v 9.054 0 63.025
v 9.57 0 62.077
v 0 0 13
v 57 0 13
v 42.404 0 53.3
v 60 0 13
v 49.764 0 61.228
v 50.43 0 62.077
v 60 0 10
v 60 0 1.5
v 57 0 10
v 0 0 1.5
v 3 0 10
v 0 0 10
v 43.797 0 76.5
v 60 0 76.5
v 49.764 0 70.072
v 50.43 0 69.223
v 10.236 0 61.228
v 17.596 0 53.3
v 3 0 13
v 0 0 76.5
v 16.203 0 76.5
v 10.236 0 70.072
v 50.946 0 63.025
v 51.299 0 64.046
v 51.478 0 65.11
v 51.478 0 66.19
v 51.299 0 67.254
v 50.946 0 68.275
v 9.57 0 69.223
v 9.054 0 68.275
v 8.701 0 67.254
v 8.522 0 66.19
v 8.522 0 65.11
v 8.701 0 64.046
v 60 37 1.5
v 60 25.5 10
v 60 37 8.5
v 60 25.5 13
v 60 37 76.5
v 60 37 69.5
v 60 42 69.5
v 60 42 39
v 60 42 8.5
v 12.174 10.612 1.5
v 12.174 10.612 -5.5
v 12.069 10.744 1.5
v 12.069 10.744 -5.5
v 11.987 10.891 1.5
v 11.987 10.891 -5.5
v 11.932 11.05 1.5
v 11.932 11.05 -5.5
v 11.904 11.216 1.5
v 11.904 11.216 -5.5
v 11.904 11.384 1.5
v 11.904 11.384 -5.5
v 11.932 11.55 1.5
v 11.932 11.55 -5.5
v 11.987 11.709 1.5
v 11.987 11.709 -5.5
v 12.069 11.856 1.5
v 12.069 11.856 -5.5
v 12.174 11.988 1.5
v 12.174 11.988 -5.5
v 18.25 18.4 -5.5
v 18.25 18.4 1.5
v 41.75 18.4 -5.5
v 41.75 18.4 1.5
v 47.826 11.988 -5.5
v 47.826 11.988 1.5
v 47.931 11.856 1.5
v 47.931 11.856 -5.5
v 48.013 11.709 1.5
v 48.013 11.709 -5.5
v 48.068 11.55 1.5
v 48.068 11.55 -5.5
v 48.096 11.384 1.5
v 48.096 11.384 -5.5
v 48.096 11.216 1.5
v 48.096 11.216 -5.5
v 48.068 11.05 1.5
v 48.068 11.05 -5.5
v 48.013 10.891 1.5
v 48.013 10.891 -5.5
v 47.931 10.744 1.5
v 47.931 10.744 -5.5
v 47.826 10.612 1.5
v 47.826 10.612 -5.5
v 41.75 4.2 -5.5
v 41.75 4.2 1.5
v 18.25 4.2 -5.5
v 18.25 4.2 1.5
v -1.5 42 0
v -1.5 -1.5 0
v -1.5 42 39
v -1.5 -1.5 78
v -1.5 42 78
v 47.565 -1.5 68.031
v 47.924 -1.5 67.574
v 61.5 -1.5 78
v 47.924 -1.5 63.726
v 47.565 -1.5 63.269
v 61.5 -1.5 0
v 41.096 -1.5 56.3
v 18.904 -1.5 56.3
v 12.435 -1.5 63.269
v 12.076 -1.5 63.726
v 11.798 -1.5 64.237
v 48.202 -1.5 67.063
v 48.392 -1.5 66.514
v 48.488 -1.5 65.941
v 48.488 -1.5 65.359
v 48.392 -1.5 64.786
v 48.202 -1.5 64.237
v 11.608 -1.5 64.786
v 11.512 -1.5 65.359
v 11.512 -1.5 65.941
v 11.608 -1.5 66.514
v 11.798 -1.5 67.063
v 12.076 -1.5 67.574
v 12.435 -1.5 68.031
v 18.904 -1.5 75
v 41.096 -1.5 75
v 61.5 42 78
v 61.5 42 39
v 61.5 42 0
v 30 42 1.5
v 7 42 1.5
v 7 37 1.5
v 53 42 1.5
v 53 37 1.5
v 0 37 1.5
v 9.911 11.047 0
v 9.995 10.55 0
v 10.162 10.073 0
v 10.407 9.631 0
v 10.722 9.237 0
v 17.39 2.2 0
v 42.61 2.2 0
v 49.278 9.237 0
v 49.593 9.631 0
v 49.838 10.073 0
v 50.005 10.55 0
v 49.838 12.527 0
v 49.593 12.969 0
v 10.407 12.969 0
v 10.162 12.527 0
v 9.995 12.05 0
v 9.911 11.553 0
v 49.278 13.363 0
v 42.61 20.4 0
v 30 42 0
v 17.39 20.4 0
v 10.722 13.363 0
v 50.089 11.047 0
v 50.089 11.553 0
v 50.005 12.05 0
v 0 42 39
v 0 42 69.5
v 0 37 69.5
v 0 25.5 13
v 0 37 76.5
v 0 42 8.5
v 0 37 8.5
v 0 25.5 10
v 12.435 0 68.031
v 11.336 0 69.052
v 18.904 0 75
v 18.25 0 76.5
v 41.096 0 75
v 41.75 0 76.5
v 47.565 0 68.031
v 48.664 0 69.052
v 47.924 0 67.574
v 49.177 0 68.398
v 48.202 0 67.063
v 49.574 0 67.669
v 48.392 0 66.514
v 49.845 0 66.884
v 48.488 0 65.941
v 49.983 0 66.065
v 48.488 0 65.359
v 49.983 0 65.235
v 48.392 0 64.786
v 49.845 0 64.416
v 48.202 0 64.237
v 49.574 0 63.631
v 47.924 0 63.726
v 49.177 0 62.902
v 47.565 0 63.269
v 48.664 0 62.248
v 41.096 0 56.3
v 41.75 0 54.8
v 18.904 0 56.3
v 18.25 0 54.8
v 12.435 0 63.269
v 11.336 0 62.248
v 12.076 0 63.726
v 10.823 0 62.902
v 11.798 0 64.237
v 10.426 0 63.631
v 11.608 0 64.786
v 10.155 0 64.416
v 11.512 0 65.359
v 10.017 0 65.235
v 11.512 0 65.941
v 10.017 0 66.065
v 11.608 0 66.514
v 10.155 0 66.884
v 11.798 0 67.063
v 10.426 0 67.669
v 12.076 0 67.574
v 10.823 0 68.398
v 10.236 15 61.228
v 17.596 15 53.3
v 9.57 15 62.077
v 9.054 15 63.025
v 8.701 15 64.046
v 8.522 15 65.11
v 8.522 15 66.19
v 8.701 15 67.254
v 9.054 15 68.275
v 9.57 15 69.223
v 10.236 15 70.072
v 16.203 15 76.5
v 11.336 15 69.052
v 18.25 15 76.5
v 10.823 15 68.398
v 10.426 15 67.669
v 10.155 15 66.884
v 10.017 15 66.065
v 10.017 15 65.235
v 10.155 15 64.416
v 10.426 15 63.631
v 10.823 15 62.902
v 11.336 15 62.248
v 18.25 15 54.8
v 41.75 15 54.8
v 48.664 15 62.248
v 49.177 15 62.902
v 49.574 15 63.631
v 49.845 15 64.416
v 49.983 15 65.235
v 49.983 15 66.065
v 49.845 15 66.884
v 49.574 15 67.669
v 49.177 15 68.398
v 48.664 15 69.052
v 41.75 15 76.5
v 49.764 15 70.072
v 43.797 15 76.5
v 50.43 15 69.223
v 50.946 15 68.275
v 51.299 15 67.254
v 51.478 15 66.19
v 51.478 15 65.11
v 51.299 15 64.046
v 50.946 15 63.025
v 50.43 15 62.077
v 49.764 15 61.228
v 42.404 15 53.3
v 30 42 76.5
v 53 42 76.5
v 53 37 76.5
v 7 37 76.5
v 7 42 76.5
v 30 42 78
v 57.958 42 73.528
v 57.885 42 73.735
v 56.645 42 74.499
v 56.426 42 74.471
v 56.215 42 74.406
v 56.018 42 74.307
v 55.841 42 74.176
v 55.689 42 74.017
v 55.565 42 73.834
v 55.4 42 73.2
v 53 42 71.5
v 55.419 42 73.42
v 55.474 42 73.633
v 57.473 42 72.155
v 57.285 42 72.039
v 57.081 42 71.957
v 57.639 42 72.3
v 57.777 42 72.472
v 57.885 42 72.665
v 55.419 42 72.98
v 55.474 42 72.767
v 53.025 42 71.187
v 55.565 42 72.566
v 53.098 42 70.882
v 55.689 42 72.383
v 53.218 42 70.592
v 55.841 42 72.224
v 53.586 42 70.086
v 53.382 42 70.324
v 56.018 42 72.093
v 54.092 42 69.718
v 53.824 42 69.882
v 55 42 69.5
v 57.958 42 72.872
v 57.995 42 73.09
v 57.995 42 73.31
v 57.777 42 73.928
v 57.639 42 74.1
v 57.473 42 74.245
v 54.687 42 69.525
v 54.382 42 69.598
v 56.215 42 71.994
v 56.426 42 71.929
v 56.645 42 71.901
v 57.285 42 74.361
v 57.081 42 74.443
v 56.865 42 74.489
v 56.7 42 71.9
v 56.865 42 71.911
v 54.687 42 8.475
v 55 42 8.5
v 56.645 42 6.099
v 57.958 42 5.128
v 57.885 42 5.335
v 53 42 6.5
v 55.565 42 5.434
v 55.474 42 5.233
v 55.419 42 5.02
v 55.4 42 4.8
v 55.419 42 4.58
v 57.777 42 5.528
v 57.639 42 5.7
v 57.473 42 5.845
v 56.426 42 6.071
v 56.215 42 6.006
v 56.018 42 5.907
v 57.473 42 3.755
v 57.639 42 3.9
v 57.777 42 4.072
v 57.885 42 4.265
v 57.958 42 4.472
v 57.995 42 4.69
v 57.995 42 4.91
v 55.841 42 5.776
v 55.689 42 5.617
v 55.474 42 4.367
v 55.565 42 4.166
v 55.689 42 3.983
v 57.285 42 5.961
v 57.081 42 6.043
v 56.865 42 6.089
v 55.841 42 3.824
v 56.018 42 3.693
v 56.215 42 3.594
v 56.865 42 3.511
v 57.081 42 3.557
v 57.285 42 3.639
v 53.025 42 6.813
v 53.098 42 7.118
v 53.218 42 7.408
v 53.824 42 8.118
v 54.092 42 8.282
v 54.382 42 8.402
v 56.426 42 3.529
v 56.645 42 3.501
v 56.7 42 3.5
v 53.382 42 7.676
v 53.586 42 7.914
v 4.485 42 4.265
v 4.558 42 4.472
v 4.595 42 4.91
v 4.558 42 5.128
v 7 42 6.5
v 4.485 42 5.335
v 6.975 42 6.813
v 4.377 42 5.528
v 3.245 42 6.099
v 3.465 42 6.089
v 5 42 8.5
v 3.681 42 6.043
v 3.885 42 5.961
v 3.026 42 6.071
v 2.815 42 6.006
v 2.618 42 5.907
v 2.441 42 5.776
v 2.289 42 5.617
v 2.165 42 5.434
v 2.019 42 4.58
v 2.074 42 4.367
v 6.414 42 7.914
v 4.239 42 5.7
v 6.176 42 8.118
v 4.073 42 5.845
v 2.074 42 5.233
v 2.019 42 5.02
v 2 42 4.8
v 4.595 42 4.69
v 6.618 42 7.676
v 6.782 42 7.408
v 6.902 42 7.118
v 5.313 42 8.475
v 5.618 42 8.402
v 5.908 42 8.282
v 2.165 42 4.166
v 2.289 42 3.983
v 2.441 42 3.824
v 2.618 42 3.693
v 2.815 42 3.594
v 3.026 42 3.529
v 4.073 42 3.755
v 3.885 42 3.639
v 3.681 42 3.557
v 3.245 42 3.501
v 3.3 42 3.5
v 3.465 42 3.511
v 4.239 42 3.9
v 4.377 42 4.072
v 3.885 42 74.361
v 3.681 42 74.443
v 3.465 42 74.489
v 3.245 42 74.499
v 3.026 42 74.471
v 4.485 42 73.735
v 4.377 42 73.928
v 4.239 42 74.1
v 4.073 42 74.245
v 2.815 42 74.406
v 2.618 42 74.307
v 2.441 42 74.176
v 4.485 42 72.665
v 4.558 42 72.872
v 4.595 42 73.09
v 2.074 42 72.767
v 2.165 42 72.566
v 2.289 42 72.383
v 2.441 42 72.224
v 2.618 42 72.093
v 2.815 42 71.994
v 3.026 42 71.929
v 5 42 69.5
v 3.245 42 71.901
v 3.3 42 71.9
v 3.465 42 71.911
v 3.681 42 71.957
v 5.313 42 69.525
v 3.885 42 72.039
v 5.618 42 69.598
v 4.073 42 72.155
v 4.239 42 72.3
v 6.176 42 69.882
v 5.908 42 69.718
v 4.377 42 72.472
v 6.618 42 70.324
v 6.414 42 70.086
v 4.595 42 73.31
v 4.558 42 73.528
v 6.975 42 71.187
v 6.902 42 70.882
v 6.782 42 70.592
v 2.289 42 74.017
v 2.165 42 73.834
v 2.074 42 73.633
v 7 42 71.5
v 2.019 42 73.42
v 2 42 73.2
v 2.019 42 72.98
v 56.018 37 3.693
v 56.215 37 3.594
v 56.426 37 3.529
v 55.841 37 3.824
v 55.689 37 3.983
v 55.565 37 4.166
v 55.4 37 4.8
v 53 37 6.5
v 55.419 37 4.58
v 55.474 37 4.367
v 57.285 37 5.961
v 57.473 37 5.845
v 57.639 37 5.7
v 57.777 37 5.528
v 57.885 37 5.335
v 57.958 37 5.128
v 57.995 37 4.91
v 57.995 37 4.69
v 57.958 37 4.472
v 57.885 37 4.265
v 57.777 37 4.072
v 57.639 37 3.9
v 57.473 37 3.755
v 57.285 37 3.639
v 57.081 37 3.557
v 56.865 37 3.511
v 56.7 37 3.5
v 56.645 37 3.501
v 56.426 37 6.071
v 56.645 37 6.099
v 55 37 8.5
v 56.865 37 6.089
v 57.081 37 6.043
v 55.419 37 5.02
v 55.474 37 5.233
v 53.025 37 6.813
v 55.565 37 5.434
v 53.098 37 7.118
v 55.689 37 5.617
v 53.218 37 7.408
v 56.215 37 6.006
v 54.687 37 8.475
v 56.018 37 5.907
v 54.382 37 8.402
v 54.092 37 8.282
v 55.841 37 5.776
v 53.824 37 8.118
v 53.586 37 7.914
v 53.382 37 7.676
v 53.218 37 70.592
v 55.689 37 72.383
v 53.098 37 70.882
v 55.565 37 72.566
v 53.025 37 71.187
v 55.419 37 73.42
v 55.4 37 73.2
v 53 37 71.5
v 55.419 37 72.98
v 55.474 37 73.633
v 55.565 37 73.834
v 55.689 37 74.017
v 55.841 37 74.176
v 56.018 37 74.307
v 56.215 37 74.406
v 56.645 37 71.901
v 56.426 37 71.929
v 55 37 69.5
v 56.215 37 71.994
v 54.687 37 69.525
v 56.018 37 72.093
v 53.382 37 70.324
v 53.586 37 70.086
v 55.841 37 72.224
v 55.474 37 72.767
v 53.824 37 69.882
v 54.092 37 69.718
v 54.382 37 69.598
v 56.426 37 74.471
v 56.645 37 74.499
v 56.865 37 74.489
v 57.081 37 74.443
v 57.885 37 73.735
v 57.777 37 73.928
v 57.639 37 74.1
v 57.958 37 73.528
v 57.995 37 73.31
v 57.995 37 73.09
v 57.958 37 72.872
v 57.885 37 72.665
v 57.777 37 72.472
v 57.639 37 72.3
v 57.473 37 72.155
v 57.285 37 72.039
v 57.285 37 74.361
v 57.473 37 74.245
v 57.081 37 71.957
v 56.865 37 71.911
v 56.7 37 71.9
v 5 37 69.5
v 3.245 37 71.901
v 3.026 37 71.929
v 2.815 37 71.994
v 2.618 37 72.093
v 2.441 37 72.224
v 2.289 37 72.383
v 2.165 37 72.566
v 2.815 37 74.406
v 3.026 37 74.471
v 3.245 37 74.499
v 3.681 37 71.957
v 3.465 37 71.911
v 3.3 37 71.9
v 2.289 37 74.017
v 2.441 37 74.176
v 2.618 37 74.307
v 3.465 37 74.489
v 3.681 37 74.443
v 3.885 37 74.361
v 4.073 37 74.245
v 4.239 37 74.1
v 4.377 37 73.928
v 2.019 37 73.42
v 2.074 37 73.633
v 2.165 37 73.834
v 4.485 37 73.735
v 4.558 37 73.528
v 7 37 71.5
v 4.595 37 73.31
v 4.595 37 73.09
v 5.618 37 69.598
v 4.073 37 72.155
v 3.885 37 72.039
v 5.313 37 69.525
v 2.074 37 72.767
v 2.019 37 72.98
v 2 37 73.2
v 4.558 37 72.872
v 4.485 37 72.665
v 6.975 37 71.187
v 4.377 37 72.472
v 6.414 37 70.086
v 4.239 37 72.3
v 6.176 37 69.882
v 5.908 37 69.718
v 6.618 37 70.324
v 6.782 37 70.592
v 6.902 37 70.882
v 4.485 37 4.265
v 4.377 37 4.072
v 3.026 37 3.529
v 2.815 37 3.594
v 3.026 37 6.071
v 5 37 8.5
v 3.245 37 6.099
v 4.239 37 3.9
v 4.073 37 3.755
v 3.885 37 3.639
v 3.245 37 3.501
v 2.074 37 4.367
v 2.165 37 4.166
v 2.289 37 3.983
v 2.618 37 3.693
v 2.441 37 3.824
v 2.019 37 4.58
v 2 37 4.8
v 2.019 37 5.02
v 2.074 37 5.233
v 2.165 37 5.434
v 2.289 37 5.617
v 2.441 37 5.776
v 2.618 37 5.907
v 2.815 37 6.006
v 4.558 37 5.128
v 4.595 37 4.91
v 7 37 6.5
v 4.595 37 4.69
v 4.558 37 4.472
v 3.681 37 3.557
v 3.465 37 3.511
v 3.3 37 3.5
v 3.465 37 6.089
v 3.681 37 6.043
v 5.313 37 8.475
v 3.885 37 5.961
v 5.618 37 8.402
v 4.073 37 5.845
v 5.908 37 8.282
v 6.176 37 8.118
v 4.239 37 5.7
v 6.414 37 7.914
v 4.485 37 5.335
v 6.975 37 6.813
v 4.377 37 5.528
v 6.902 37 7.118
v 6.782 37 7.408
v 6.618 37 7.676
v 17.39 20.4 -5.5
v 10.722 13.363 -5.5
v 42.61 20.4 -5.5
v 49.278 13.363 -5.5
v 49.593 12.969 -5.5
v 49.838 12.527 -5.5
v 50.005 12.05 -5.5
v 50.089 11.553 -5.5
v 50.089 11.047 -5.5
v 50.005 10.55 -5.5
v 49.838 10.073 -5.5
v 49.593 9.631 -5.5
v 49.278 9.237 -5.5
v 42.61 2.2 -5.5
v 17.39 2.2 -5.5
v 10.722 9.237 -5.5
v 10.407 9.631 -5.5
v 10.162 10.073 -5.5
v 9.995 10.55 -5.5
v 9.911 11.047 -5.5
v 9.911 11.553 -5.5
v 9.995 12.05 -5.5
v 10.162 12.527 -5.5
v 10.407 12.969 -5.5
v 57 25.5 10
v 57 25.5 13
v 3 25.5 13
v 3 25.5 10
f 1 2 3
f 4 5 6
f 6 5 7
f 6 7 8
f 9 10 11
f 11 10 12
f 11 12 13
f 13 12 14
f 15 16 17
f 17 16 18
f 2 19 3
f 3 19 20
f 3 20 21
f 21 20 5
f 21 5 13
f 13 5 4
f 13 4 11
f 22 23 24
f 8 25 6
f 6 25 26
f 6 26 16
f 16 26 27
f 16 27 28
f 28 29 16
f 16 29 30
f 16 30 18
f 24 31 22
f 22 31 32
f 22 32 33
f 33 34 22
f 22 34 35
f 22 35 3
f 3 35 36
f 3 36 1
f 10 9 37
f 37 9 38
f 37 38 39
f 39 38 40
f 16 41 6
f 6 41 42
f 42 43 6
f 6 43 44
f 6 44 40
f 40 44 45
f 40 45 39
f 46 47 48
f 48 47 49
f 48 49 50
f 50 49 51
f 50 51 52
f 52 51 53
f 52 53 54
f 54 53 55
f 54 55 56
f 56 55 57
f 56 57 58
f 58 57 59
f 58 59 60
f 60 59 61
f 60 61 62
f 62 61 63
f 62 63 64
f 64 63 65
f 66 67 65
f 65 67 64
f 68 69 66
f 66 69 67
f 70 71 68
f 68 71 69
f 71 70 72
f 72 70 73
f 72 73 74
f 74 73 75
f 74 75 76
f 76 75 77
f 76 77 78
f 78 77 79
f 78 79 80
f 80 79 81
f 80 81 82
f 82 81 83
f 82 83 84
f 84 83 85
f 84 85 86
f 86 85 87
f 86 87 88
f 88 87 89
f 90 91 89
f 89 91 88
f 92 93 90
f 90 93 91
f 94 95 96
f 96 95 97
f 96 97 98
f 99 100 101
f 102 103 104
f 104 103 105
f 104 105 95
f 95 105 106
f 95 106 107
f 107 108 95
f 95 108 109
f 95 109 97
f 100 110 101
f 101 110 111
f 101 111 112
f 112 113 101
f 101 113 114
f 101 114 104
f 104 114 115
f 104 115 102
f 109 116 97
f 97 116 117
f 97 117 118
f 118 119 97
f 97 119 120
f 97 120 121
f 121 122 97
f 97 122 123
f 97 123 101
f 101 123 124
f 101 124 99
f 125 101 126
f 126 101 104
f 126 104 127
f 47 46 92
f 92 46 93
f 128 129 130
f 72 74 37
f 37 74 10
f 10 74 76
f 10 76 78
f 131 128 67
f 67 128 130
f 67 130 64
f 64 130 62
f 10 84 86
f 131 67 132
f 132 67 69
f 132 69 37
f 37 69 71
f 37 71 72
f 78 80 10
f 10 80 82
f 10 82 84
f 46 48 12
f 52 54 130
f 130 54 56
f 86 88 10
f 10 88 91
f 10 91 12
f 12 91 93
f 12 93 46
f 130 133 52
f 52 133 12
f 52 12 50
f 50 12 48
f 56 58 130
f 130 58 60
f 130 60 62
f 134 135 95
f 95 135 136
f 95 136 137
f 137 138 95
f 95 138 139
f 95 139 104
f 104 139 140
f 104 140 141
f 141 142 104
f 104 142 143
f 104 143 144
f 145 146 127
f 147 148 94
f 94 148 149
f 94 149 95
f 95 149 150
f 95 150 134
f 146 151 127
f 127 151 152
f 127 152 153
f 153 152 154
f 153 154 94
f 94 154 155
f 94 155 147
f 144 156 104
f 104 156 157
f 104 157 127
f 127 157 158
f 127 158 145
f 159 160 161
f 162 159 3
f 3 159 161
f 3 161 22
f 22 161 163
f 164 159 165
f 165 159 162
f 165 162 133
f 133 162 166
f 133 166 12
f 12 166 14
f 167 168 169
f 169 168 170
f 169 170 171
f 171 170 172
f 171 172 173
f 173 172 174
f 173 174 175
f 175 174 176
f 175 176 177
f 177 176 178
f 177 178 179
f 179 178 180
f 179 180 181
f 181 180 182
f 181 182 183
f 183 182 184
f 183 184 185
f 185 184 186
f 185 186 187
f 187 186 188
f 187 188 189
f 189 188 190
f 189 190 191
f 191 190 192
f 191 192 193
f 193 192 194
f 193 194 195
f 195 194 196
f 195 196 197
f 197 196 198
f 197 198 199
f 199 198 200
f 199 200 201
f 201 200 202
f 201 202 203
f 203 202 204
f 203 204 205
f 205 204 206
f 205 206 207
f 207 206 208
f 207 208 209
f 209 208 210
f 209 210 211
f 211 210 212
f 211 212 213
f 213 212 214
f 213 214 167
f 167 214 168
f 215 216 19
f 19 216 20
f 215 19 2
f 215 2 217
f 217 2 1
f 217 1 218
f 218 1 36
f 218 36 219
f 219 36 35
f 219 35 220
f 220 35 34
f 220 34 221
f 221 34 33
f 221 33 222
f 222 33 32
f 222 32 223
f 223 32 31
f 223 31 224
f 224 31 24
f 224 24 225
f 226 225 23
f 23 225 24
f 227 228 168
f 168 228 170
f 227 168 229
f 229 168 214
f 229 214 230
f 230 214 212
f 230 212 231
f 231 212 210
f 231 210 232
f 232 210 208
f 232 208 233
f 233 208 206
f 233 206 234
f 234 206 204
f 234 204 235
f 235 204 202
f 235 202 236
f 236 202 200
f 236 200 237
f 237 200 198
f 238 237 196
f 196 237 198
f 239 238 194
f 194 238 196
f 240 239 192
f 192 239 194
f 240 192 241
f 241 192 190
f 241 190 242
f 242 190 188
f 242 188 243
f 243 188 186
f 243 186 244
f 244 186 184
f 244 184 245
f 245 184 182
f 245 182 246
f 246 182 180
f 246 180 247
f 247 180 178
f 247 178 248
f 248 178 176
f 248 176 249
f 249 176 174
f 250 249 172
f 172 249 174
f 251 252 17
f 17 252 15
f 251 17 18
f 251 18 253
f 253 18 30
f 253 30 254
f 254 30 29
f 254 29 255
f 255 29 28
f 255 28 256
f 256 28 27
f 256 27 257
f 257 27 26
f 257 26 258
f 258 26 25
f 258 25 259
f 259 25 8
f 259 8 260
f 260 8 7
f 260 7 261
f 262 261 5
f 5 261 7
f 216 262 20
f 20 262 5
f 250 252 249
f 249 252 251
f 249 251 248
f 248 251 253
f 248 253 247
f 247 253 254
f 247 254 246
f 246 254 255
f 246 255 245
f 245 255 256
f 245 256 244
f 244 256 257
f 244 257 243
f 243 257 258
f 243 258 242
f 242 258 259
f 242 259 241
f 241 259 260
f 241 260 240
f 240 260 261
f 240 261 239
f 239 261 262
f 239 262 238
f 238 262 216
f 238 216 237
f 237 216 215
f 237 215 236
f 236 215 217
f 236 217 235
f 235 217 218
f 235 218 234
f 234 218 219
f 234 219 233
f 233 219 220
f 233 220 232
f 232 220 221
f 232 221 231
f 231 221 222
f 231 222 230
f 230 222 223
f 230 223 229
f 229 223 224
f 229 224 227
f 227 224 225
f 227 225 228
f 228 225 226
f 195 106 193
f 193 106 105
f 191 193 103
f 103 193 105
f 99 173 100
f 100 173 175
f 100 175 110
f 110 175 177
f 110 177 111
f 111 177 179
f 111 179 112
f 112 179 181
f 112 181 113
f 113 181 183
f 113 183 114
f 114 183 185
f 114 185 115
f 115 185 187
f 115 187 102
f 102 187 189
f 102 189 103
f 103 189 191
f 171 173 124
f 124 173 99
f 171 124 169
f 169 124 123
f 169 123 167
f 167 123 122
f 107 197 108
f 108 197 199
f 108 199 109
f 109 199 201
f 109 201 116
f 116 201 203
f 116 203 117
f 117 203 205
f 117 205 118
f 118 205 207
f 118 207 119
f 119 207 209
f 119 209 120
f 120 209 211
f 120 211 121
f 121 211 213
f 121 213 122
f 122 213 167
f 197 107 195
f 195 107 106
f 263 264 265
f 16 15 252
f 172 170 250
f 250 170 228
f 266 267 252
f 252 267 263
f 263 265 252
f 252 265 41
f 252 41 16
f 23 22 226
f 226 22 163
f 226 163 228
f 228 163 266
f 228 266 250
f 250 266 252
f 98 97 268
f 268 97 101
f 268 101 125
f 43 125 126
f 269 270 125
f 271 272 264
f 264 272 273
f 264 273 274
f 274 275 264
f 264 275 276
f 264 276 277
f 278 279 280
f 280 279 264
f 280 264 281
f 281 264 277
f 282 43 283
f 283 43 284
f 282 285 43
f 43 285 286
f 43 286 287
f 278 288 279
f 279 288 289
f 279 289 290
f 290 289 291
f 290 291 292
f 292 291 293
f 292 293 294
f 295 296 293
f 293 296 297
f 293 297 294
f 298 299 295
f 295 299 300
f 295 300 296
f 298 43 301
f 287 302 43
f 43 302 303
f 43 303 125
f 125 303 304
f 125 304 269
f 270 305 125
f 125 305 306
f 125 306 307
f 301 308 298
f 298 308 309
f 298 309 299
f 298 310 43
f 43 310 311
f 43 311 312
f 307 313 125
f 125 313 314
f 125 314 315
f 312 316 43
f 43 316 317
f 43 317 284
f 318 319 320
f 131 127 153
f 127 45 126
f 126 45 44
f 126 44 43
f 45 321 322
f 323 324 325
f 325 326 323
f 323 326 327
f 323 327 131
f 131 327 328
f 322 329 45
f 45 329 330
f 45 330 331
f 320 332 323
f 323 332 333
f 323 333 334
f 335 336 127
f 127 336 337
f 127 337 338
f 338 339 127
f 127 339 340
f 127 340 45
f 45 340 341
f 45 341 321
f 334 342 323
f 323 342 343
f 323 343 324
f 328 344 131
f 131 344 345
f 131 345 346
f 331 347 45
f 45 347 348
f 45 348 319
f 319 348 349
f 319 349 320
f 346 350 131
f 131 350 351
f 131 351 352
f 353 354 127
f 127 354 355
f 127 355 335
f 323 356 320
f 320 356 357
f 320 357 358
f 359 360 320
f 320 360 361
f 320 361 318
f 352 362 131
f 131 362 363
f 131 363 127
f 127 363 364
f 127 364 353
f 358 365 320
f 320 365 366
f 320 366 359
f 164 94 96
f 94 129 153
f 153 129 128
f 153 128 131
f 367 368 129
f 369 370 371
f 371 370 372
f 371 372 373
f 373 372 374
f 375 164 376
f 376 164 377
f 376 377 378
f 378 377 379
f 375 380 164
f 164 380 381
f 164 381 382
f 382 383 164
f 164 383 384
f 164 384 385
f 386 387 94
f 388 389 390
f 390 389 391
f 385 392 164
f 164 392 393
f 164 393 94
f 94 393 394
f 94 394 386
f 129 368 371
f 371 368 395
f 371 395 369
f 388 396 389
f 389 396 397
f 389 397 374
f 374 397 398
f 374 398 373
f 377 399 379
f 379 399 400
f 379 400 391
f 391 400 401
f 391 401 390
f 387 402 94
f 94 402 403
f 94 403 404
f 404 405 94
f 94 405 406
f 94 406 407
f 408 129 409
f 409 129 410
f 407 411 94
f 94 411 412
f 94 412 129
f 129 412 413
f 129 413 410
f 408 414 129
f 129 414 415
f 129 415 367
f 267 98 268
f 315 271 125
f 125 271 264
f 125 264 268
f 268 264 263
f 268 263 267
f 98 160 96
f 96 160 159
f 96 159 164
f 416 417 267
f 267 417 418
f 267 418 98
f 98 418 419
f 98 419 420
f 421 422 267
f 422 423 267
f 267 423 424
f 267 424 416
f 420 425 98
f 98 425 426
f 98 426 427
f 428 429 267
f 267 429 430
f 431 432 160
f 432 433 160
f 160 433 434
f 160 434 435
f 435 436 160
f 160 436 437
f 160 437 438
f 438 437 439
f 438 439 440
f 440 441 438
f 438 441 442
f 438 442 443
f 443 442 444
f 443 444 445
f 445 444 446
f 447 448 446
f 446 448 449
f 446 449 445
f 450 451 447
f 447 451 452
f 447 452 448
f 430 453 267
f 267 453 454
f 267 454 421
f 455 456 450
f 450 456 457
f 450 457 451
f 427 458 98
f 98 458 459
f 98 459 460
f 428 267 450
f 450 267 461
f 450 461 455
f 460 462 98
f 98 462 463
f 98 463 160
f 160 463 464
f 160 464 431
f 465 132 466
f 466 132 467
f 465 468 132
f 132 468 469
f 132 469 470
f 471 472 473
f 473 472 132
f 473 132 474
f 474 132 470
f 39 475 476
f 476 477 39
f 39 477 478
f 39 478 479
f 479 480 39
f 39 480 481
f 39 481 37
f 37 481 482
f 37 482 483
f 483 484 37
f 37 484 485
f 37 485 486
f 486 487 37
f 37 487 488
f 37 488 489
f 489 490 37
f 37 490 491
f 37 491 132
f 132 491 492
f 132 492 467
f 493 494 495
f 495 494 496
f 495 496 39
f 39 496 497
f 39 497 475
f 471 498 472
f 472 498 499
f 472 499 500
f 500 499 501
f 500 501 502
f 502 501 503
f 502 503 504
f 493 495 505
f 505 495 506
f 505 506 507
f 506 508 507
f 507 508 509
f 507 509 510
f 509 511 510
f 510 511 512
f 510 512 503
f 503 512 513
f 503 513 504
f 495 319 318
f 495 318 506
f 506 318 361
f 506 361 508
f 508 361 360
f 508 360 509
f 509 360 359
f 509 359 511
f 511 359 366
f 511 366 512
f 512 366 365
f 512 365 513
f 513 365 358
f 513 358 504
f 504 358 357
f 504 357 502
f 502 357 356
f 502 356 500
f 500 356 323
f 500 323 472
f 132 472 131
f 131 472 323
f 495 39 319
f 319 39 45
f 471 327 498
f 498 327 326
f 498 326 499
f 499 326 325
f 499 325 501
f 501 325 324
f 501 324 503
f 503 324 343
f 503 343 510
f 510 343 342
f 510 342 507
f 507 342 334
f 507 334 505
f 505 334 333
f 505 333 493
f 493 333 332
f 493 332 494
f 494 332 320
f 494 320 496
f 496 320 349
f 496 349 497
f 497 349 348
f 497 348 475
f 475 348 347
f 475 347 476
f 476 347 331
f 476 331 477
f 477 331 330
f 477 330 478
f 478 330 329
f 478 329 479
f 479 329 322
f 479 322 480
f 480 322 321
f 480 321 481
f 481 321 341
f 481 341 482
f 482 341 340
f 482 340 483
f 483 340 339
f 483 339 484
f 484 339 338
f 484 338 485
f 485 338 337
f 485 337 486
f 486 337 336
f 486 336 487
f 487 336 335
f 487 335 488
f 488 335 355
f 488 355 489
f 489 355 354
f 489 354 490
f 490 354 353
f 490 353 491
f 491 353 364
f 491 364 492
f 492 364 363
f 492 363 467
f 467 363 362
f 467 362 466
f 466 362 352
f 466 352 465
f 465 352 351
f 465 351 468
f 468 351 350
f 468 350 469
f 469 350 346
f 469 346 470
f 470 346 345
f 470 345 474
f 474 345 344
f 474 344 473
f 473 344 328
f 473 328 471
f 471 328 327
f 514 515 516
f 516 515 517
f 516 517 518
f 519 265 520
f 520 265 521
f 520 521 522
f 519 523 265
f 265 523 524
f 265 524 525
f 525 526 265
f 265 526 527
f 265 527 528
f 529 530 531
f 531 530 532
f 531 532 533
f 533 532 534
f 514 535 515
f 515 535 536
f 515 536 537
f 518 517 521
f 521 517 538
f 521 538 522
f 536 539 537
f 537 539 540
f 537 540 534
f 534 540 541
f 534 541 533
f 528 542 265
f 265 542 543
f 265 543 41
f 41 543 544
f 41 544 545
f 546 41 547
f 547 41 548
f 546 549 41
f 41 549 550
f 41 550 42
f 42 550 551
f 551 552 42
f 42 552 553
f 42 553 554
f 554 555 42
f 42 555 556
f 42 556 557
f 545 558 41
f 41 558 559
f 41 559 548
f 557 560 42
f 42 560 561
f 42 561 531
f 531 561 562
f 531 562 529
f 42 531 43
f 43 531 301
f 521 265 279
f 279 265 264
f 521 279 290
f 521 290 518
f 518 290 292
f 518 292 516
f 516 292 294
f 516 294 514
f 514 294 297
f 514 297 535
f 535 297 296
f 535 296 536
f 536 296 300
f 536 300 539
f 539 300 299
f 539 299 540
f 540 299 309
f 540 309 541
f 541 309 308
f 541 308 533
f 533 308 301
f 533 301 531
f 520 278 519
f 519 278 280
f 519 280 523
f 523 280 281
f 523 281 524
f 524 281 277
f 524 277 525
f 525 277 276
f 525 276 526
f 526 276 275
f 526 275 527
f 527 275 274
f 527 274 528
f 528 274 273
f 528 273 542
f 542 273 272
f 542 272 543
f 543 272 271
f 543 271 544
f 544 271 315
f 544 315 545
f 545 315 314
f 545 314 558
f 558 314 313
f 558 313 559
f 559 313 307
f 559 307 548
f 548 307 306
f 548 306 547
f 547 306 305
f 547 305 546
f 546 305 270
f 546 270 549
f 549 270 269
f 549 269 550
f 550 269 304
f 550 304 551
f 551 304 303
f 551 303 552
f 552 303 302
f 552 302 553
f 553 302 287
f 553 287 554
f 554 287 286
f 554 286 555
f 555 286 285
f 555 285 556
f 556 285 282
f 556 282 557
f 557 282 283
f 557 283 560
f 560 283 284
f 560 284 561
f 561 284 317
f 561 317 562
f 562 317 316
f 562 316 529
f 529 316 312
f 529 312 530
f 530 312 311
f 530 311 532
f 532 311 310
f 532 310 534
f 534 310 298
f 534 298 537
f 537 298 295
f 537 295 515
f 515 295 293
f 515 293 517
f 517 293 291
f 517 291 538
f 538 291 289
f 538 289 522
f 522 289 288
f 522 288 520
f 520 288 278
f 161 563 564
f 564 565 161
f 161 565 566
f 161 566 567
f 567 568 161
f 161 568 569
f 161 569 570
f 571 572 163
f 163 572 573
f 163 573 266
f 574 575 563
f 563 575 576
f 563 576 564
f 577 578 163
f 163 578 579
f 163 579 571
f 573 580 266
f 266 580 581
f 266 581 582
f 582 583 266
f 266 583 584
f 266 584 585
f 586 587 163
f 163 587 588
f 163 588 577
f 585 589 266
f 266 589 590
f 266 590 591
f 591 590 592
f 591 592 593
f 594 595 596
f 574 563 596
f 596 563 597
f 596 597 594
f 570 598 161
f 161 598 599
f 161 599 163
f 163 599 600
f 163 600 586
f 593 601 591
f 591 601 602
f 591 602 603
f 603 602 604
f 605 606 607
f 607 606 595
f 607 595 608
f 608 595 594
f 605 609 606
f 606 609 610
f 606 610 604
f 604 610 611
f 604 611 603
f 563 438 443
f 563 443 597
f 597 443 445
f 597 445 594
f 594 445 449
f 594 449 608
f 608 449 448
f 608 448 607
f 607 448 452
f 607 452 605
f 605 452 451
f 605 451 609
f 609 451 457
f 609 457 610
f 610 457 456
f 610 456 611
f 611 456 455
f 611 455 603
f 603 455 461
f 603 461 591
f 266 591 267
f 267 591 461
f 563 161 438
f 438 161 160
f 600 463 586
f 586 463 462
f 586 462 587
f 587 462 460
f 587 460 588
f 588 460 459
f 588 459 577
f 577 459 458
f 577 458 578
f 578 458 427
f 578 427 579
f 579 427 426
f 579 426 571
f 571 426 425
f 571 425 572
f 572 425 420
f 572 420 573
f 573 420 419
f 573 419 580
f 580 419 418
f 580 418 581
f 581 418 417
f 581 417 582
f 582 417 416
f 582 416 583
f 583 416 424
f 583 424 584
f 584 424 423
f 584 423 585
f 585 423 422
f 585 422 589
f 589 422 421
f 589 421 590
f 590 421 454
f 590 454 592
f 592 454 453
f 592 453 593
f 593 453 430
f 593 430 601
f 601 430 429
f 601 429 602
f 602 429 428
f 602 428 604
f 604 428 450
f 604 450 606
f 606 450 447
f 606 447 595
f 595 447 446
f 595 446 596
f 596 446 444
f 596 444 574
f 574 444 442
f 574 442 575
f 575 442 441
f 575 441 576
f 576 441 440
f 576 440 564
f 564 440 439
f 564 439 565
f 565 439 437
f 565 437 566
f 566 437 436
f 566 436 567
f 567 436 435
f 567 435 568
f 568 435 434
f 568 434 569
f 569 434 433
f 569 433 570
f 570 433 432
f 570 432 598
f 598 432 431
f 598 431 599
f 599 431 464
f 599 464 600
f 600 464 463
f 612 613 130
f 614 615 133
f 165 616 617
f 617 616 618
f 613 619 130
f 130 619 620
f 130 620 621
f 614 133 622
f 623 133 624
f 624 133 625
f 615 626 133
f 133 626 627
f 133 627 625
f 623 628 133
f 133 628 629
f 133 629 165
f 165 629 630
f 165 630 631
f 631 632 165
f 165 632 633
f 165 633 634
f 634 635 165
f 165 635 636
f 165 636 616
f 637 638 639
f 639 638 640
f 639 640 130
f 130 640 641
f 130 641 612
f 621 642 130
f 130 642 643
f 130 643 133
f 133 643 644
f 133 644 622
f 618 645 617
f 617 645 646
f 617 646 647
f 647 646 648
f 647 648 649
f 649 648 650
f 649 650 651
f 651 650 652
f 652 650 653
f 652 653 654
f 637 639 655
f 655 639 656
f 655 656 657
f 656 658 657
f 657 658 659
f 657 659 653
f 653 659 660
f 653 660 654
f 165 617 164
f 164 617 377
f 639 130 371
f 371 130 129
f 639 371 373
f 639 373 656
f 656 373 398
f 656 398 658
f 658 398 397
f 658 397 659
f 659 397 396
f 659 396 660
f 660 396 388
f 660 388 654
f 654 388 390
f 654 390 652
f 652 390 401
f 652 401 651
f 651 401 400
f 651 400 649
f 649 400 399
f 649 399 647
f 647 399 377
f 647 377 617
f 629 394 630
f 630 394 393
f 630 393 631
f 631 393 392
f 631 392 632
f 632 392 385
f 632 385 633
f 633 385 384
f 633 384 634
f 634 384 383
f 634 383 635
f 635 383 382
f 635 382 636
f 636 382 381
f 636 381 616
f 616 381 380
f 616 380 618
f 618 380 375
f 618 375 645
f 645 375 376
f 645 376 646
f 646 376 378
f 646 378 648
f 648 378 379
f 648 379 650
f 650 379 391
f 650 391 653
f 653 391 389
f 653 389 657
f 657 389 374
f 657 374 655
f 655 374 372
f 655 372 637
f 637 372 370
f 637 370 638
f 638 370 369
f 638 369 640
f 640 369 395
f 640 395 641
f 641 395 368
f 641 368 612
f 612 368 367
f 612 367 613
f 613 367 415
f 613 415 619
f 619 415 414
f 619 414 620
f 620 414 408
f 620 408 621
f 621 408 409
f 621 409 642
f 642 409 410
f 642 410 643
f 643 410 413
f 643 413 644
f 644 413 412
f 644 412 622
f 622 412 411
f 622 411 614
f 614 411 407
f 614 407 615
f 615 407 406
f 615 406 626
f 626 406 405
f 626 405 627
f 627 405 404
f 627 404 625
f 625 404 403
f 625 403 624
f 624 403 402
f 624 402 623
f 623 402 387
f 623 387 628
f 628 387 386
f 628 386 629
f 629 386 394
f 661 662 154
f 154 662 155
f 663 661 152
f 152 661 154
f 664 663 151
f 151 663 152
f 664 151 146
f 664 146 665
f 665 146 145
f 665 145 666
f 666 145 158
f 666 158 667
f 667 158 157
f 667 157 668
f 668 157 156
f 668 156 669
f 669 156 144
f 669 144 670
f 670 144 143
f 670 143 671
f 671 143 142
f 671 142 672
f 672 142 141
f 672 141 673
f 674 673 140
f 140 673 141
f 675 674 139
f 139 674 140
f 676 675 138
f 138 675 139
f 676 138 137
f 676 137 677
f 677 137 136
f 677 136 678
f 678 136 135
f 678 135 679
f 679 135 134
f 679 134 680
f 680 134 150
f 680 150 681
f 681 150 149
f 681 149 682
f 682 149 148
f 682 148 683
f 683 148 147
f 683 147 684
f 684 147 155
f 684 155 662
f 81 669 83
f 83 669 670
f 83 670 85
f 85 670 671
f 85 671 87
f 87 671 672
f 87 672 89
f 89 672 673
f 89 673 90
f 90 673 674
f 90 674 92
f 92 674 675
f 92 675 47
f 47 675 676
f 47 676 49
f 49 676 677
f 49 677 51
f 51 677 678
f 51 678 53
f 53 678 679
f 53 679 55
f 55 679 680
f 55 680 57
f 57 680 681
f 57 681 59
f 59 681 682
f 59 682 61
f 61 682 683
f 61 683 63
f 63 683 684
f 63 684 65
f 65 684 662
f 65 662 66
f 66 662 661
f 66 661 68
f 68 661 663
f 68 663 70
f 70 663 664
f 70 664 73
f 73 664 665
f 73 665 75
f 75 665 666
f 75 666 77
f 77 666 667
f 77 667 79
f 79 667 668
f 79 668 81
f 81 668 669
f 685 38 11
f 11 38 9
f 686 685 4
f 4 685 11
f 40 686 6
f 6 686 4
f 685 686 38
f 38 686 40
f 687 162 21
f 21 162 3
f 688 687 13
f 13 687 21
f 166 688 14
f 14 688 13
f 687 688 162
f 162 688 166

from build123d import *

# Parameters (mm, degrees)
ESBO_O1_W                 = 63
ESBO_O1_H                 = 45
ESBO_O1_W_2               = 60
ESBO_O1_H_2               = 42
RESSALTO_EXTRUS_O2_DEPTH  = 1.5
RESSALTO_EXTRUS_O3_START  = 1.5
ESBO_O1_3_W               = 63
ESBO_O1_3_H               = 45
ESBO_O1_3_W_2             = 60
ESBO_O1_3_H_2             = 42
RESSALTO_EXTRUS_O3_DEPTH  = 75
RESSALTO_EXTRUS_O4_DEPTH  = 15
CORTE_EXTRUS_O1_DEPTH     = 27
ESBO_O4_W                 = 63
ESBO_O4_H                 = 45
RESSALTO_EXTRUS_O6_DEPTH  = 1.5
ESBO_O5_W                 = 63
ESBO_O5_H                 = 1.5
CORTE_EXTRUS_O2_DEPTH     = 109.436617432
RESSALTO_EXTRUS_O7_START  = 42
ESBO_O6_R                 = 1.3
RESSALTO_EXTRUS_O7_DEPTH  = 5
ESPELHAR2_START           = 42
ESPELHAR2_COPY_1_SKETCH_R = 1.3
ESPELHAR2_COPY_1_DEPTH    = 5
RESSALTO_EXTRUS_O8_START  = -5.5
RESSALTO_EXTRUS_O8_DEPTH  = 5.5
ESBO_O7_W                 = 3
ESBO_O7_H                 = 3
RESSALTO_EXTRUS_O9_DEPTH  = 25.5


with BuildPart() as part:
    # Esboço1 → Ressalto-extrusão2 (new body)
    # profile 1 of 3: a face of its own
    with BuildSketch(Plane.XY):
        with Locations((30, 21)):
            Rectangle(ESBO_O1_W, ESBO_O1_H)
        with Locations((30, 21)):
            Rectangle(ESBO_O1_W_2, ESBO_O1_H_2, mode=Mode.SUBTRACT)
    # profile 2 of 3: a face of its own
    with BuildSketch(Plane.XY):
        with Locations((30, 21)):
            Rectangle(ESBO_O1_W_2, ESBO_O1_H_2)
        with BuildLine():
            ThreePointArc((12.174114264, 11.987815308), (11.9, 11.3), (12.174114264, 10.612184692))
            Line((12.174114264, 10.612184692), (18.25, 4.2))
            Line((18.25, 4.2), (41.75, 4.2))
            Line((41.75, 4.2), (47.825885736, 10.612184692))
            ThreePointArc((47.825885736, 10.612184692), (48.1, 11.3), (47.825885736, 11.987815308))
            Line((47.825885736, 11.987815308), (41.75, 18.4))
            Line((41.75, 18.4), (18.25, 18.4))
            Line((18.25, 18.4), (12.174114264, 11.987815308))
        make_face(mode=Mode.SUBTRACT)
    # profile 3 of 3: a face of its own
    with BuildSketch(Plane.XY):
        with Locations((30, 21)):
            Rectangle(ESBO_O1_W_2, ESBO_O1_H_2)
        with BuildLine():
            ThreePointArc((10.722342792, 13.363445925), (9.9, 11.3), (10.722342792, 9.236554075))
            Line((10.722342792, 9.236554075), (17.389851698, 2.2))
            Line((17.389851698, 2.2), (42.610148302, 2.2))
            Line((42.610148302, 2.2), (49.277657208, 9.236554075))
            ThreePointArc((49.277657208, 9.236554075), (50.1, 11.3), (49.277657208, 13.363445925))
            Line((49.277657208, 13.363445925), (42.610148302, 20.4))
            Line((42.610148302, 20.4), (17.389851698, 20.4))
            Line((17.389851698, 20.4), (10.722342792, 13.363445925))
        make_face(mode=Mode.SUBTRACT)
    extrude(amount=RESSALTO_EXTRUS_O2_DEPTH)

    # Esboço1<3> → Ressalto-extrusão3 (add)
    with BuildSketch(Plane.XY.offset(RESSALTO_EXTRUS_O3_START)):
        with Locations((30, 21)):
            Rectangle(ESBO_O1_3_W, ESBO_O1_3_H)
        with Locations((30, 21)):
            Rectangle(ESBO_O1_3_W_2, ESBO_O1_3_H_2, mode=Mode.SUBTRACT)
    extrude(amount=RESSALTO_EXTRUS_O3_DEPTH)

    # Esboço2 → Ressalto-extrusão4 (add)
    with BuildSketch(Plane(origin=(0, 0, 0), x_dir=(1, 0, 0), z_dir=(0, 1, 0))):
        with BuildLine():
            Line((18.25, -54.8), (41.75, -54.8))
            Line((41.75, -54.8), (48.66440786, -62.248218844))
            ThreePointArc((48.66440786, -62.248218844), (49.654140055, -63.822712297), (50, -65.65))
            Line((50, -65.65), (51.5, -65.65))
            ThreePointArc((51.5, -65.65), (51.050382071, -63.274525986), (49.763730218, -61.227684497))
            Line((49.763730218, -61.227684497), (42.404219824, -53.3))
            Line((42.404219824, -53.3), (17.595780176, -53.3))
            Line((17.595780176, -53.3), (10.236269782, -61.227684497))
            ThreePointArc((10.236269782, -61.227684497), (8.949617929, -63.274525986), (8.5, -65.65))
            Line((8.5, -65.65), (10, -65.65))
            ThreePointArc((10, -65.65), (10.345859945, -63.822712297), (11.33559214, -62.248218844))
            Line((11.33559214, -62.248218844), (18.25, -54.8))
        make_face()
        with BuildLine():
            ThreePointArc((11.33559214, -69.051781156), (10.345859945, -67.477287703), (10, -65.65))
            Line((10, -65.65), (8.5, -65.65))
            ThreePointArc((8.5, -65.65), (8.949617929, -68.025474014), (10.236269782, -70.072315503))
            Line((10.236269782, -70.072315503), (16.2032846, -76.5))
            Line((16.2032846, -76.5), (18.25, -76.5))
            Line((18.25, -76.5), (11.33559214, -69.051781156))
        make_face()
        with BuildLine():
            Line((51.5, -65.65), (50, -65.65))
            ThreePointArc((50, -65.65), (49.654140055, -67.477287703), (48.66440786, -69.051781156))
            Line((48.66440786, -69.051781156), (41.75, -76.5))
            Line((41.75, -76.5), (43.7967154, -76.5))
            Line((43.7967154, -76.5), (49.763730218, -70.072315503))
            ThreePointArc((49.763730218, -70.072315503), (51.050382071, -68.025474014), (51.5, -65.65))
        make_face()
    extrude(amount=RESSALTO_EXTRUS_O4_DEPTH)

    # Esboço2<3> → Corte-extrusão1 (cut)
    with BuildSketch(Plane(origin=(0, 0, 0), x_dir=(1, 0, 0), z_dir=(0, 1, 0))):
        with BuildLine():
            Line((41.095780176, -56.3), (30, -56.3))
            Line((30, -56.3), (30, -75))
            Line((30, -75), (41.095780176, -75))
            Line((41.095780176, -75), (47.565085502, -68.031246809))
            ThreePointArc((47.565085502, -68.031246809), (48.5, -65.65), (47.565085502, -63.268753191))
            Line((47.565085502, -63.268753191), (41.095780176, -56.3))
        make_face()
        with BuildLine():
            Line((30, -75), (30, -56.3))
            Line((30, -56.3), (18.904219824, -56.3))
            Line((18.904219824, -56.3), (12.434914498, -63.268753191))
            ThreePointArc((12.434914498, -63.268753191), (11.5, -65.65), (12.434914498, -68.031246809))
            Line((12.434914498, -68.031246809), (18.904219824, -75))
            Line((18.904219824, -75), (30, -75))
        make_face()
    extrude(amount=-CORTE_EXTRUS_O1_DEPTH, mode=Mode.SUBTRACT)

    # Esboço4 → Ressalto-extrusão6 (add)
    with BuildSketch(Plane.XY.offset(76.5)):
        with Locations((30, 21)):
            Rectangle(ESBO_O4_W, ESBO_O4_H)
    extrude(amount=RESSALTO_EXTRUS_O6_DEPTH)

    # Esboço5 → Corte-extrusão2 (cut, through all)
    with BuildSketch(Plane.XY.offset(78)):
        with Locations((30, 42.75)):
            Rectangle(ESBO_O5_W, ESBO_O5_H)
    extrude(amount=-CORTE_EXTRUS_O2_DEPTH, mode=Mode.SUBTRACT)

    # Esboço6 → Ressalto-extrusão7 (add)
    with BuildSketch(Plane(origin=(0, 0, 0), x_dir=(1, 0, 0), z_dir=(0, 1, 0)).offset(RESSALTO_EXTRUS_O7_START)):
        with BuildLine():
            Line((60, -1.5), (60, -8.5))
            Line((60, -8.5), (55, -8.5))
            ThreePointArc((55, -8.5), (53.585786438, -7.914213562), (53, -6.5))
            Line((53, -6.5), (53, -1.5))
            Line((53, -1.5), (60, -1.5))
        make_face()
        with Locations(Location((56.7, -4.8, 0), (0, 0, 90))):
            Circle(ESBO_O6_R, mode=Mode.SUBTRACT)
    ressalto_extrus_o7 = extrude(amount=-RESSALTO_EXTRUS_O7_DEPTH)

    # Espelhar1: Ressalto-extrusão7 across plane
    add(ressalto_extrus_o7.mirror(Plane.XY.offset(39)))

    # Espelhar2: Ressalto-extrusão7 across plane
    add(ressalto_extrus_o7.mirror(Plane.ZY.offset(-30)))

    # Espelhar2 copy 1 sketch → Espelhar2 copy 1 (add)
    with BuildSketch(Plane(origin=(60, 0, 78), x_dir=(-1, 0, 0), z_dir=(0, 1, 0)).offset(ESPELHAR2_START)):
        with BuildLine():
            Line((60, -1.5), (60, -8.5))
            Line((60, -8.5), (55, -8.5))
            ThreePointArc((55, -8.5), (53.585786438, -7.914213562), (53, -6.5))
            Line((53, -6.5), (53, -1.5))
            Line((53, -1.5), (60, -1.5))
        make_face()
        with Locations(Location((56.7, -4.8, 0), (0, 0, 90))):
            Circle(ESPELHAR2_COPY_1_SKETCH_R, mode=Mode.SUBTRACT)
    extrude(amount=-ESPELHAR2_COPY_1_DEPTH)

    # Esboço1<4> → Ressalto-extrusão8 (add)
    with BuildSketch(Plane.XY.offset(RESSALTO_EXTRUS_O8_START)):
        with BuildLine():
            Line((17.389851698, 20.4), (10.722342792, 13.363445925))
            ThreePointArc((10.722342792, 13.363445925), (9.9, 11.3), (10.722342792, 9.236554075))
            Line((10.722342792, 9.236554075), (17.389851698, 2.2))
            Line((17.389851698, 2.2), (42.610148302, 2.2))
            Line((42.610148302, 2.2), (49.277657208, 9.236554075))
            ThreePointArc((49.277657208, 9.236554075), (50.1, 11.3), (49.277657208, 13.363445925))
            Line((49.277657208, 13.363445925), (42.610148302, 20.4))
            Line((42.610148302, 20.4), (17.389851698, 20.4))
        make_face()
        with BuildLine():
            ThreePointArc((12.174114264, 11.987815308), (11.9, 11.3), (12.174114264, 10.612184692))
            Line((12.174114264, 10.612184692), (18.25, 4.2))
            Line((18.25, 4.2), (41.75, 4.2))
            Line((41.75, 4.2), (47.825885736, 10.612184692))
            ThreePointArc((47.825885736, 10.612184692), (48.1, 11.3), (47.825885736, 11.987815308))
            Line((47.825885736, 11.987815308), (41.75, 18.4))
            Line((41.75, 18.4), (18.25, 18.4))
            Line((18.25, 18.4), (12.174114264, 11.987815308))
        make_face(mode=Mode.SUBTRACT)
    extrude(amount=RESSALTO_EXTRUS_O8_DEPTH)

    # Esboço7 → Ressalto-extrusão9 (add)
    with BuildSketch(Plane(origin=(0, 0, 0), x_dir=(1, 0, 0), z_dir=(0, 1, 0))):
        with Locations((58.5, -11.5)):
            Rectangle(ESBO_O7_W, ESBO_O7_H)
    ressalto_extrus_o9 = extrude(amount=RESSALTO_EXTRUS_O9_DEPTH)

    # Espelhar3: Ressalto-extrusão9 across plane
    add(ressalto_extrus_o9.mirror(Plane.ZY.offset(-30)))


solid = part.part
